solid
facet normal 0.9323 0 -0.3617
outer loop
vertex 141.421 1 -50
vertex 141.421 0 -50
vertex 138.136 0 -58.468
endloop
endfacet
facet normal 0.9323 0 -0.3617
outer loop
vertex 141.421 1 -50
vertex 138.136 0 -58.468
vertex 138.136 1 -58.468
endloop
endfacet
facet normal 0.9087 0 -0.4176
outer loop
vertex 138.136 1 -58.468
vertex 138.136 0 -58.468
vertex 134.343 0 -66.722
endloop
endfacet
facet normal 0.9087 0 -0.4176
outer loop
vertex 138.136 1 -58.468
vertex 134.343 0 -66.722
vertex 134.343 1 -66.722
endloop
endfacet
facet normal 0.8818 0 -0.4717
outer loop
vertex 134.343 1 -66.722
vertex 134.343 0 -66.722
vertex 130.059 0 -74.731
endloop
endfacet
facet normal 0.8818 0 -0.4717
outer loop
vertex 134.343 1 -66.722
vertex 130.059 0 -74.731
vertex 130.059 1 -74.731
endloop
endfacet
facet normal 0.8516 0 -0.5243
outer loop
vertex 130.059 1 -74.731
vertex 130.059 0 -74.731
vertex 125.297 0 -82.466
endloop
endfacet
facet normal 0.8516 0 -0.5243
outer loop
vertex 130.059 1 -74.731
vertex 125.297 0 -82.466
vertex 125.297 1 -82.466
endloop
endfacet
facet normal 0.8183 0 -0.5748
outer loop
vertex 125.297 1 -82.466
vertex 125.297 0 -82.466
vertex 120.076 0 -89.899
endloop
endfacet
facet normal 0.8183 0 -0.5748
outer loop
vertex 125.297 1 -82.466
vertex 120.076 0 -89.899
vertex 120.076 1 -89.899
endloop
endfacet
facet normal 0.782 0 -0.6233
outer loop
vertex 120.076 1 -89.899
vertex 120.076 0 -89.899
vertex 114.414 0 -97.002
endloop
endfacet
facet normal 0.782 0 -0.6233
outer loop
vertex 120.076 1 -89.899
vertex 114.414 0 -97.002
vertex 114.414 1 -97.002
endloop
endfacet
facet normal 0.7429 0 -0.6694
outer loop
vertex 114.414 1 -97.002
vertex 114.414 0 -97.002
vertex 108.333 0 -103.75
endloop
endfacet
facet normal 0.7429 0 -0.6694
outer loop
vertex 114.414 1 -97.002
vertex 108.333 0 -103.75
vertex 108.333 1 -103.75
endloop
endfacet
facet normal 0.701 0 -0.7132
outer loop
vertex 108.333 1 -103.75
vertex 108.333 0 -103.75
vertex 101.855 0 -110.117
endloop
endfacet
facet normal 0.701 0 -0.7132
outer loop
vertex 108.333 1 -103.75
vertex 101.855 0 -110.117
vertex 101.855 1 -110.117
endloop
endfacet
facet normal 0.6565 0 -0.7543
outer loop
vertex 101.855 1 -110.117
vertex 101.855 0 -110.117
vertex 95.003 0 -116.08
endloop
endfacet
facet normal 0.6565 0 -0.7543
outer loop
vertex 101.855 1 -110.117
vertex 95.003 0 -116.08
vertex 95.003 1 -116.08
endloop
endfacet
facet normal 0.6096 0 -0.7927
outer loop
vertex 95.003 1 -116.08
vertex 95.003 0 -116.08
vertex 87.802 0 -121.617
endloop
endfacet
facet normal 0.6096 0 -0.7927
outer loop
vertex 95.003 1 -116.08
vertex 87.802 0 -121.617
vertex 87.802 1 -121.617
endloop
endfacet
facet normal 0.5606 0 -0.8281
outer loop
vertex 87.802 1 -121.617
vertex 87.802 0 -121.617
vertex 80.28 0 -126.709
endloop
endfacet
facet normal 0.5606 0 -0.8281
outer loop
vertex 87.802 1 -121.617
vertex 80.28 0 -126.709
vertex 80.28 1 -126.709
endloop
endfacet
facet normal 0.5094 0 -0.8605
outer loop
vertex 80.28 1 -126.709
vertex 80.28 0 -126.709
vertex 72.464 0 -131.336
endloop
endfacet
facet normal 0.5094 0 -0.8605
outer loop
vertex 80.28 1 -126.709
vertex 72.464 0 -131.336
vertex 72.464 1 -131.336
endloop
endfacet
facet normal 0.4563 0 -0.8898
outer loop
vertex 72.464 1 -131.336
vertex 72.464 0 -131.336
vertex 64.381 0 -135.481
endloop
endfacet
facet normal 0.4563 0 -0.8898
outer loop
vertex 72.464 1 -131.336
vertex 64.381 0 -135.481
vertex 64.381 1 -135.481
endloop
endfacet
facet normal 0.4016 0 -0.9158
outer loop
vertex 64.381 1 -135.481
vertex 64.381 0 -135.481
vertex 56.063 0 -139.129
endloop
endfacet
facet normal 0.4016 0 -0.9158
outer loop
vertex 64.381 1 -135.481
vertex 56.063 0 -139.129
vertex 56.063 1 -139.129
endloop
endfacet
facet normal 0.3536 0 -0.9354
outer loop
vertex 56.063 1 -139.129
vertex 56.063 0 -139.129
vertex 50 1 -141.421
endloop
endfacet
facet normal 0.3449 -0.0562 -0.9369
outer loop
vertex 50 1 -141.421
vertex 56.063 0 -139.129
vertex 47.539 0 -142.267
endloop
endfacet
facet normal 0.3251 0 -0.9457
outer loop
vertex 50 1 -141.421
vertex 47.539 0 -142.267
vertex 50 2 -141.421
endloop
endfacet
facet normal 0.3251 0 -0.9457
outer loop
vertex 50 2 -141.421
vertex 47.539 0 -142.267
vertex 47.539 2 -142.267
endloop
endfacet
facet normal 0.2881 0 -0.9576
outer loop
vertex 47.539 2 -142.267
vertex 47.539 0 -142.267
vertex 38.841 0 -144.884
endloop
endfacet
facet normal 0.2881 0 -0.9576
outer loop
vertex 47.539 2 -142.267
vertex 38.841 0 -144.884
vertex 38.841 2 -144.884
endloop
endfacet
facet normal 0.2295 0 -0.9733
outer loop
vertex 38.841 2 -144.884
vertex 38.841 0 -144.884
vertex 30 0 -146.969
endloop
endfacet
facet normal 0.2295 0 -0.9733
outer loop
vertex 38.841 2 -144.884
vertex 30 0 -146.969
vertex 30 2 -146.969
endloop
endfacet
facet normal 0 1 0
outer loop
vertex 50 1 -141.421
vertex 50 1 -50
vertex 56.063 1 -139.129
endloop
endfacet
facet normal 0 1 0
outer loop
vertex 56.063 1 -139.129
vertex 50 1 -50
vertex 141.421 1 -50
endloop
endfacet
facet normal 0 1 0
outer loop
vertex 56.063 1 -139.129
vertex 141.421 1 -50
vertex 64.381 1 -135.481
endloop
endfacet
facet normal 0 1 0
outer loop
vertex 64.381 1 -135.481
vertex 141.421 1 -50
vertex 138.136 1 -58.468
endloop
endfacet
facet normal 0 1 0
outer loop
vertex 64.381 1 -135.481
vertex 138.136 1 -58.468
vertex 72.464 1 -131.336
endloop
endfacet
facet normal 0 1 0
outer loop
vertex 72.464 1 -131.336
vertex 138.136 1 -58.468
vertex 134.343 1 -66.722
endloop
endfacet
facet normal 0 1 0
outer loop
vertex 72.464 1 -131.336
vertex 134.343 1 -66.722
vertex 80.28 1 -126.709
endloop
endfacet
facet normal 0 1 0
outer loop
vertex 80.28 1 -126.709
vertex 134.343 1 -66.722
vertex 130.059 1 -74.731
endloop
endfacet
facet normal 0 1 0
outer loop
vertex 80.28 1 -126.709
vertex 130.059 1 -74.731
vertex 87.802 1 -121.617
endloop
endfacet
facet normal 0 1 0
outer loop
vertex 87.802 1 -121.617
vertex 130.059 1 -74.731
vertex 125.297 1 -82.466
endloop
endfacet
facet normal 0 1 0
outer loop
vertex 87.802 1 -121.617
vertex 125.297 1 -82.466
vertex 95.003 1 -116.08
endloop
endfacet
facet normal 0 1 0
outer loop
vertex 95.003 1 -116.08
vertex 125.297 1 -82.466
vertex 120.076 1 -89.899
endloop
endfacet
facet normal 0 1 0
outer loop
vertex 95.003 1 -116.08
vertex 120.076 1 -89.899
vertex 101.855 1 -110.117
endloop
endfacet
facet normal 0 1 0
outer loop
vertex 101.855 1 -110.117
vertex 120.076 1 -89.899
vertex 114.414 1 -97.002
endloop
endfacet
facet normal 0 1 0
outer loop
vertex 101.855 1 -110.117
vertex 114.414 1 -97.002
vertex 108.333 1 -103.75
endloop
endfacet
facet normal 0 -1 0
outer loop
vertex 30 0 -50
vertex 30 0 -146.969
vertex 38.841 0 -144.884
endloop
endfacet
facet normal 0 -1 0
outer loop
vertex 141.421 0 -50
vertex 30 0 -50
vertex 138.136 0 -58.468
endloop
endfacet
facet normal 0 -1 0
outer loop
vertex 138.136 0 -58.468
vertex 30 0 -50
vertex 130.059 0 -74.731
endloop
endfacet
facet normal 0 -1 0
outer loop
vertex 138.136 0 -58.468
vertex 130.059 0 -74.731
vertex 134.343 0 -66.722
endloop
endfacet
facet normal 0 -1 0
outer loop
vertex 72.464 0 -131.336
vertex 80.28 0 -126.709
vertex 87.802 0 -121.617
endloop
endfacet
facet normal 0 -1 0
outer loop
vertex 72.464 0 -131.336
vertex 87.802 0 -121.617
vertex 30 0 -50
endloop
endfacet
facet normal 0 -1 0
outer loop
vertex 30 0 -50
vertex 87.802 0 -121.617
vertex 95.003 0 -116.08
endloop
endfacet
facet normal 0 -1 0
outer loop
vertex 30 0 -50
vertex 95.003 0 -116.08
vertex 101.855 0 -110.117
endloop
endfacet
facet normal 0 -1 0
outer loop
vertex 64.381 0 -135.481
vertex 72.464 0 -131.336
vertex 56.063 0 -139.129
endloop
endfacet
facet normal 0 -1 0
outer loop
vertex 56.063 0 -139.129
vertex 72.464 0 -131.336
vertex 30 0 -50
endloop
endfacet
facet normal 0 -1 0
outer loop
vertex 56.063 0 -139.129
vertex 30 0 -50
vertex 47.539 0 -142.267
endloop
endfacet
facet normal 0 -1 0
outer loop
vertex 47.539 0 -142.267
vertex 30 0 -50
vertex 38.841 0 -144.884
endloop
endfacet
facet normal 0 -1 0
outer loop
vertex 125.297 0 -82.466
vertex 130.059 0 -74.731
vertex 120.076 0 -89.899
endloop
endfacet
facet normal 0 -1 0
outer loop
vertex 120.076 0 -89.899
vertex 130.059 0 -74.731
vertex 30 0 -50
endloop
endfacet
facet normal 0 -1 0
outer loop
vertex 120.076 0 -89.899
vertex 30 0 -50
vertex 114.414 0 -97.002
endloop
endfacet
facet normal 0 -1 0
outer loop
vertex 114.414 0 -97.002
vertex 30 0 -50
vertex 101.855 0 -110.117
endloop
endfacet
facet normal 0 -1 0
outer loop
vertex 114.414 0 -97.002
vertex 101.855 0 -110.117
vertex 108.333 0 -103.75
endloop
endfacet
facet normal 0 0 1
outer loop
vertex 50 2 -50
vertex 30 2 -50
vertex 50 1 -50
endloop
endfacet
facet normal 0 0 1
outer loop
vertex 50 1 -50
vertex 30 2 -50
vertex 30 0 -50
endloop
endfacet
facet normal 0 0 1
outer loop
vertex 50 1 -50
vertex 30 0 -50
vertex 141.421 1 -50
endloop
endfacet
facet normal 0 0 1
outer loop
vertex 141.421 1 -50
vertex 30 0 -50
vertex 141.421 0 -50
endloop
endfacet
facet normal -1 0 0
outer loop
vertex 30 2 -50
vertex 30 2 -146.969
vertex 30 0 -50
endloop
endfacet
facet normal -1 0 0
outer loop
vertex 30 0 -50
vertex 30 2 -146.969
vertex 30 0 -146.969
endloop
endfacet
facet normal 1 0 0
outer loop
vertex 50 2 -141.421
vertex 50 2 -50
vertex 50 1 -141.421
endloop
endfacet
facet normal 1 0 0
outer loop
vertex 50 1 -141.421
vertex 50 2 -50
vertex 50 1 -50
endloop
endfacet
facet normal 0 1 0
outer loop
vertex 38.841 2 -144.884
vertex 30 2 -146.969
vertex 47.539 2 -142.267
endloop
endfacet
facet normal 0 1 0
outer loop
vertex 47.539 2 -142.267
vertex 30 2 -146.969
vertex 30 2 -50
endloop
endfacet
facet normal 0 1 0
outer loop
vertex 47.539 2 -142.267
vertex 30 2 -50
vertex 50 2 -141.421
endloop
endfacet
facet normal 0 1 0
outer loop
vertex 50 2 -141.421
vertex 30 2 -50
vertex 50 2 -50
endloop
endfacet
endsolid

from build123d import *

# Parameters (mm, degrees)
BOSS_EXTRUDE3_DEPTH = 1
BOSS_EXTRUDE4_DEPTH = 1
CUT_EXTRUDE1_DEPTH  = 208.84850252


with BuildPart() as part:
    # Sketch1 → Boss-Extrude3 (new body)
    with BuildSketch(Plane(origin=(0, 0, 0), x_dir=(1, 0, 0), z_dir=(0, 1, 0))):
        with BuildLine():
            Line((50, 50), (50, 30))
            Line((50, 30), (146.969384567, 30))
            ThreePointArc((146.969384567, 30), (106.066017178, 106.066017178), (30, 146.969384567))
            Line((30, 146.969384567), (30, 50))
            Line((30, 50), (50, 50))
        make_face()
    extrude(amount=BOSS_EXTRUDE3_DEPTH)

    # Sketch2 → Boss-Extrude4 (add)
    with BuildSketch(Plane(origin=(0, 1, 0), x_dir=(-1, 0, 0), z_dir=(0, 1, 0))):
        with BuildLine():
            Line((-50, -50), (-30, -50))
            Line((-30, -50), (-30, -146.969384567))
            ThreePointArc((-30, -146.969384567), (-40.096074055, -144.541706249), (-50, -141.421356237))
            Line((-50, -141.421356237), (-50, -50))
        make_face()
    extrude(amount=BOSS_EXTRUDE4_DEPTH)

    # Sketch3 → Cut-Extrude1 (cut, through all)
    with BuildSketch(Plane(origin=(0, 1, 0), x_dir=(-1, 0, 0), z_dir=(0, 1, 0))):
        with BuildLine():
            Line((-141.421356237, -50), (-50, -50))
            Line((-50, -50), (-50, -30))
            Line((-50, -30), (-146.969384567, -30))
            ThreePointArc((-146.969384567, -30), (-144.541706249, -40.096074055), (-141.421356237, -50))
        make_face()
    extrude(amount=-CUT_EXTRUDE1_DEPTH, mode=Mode.SUBTRACT)


solid = part.part
